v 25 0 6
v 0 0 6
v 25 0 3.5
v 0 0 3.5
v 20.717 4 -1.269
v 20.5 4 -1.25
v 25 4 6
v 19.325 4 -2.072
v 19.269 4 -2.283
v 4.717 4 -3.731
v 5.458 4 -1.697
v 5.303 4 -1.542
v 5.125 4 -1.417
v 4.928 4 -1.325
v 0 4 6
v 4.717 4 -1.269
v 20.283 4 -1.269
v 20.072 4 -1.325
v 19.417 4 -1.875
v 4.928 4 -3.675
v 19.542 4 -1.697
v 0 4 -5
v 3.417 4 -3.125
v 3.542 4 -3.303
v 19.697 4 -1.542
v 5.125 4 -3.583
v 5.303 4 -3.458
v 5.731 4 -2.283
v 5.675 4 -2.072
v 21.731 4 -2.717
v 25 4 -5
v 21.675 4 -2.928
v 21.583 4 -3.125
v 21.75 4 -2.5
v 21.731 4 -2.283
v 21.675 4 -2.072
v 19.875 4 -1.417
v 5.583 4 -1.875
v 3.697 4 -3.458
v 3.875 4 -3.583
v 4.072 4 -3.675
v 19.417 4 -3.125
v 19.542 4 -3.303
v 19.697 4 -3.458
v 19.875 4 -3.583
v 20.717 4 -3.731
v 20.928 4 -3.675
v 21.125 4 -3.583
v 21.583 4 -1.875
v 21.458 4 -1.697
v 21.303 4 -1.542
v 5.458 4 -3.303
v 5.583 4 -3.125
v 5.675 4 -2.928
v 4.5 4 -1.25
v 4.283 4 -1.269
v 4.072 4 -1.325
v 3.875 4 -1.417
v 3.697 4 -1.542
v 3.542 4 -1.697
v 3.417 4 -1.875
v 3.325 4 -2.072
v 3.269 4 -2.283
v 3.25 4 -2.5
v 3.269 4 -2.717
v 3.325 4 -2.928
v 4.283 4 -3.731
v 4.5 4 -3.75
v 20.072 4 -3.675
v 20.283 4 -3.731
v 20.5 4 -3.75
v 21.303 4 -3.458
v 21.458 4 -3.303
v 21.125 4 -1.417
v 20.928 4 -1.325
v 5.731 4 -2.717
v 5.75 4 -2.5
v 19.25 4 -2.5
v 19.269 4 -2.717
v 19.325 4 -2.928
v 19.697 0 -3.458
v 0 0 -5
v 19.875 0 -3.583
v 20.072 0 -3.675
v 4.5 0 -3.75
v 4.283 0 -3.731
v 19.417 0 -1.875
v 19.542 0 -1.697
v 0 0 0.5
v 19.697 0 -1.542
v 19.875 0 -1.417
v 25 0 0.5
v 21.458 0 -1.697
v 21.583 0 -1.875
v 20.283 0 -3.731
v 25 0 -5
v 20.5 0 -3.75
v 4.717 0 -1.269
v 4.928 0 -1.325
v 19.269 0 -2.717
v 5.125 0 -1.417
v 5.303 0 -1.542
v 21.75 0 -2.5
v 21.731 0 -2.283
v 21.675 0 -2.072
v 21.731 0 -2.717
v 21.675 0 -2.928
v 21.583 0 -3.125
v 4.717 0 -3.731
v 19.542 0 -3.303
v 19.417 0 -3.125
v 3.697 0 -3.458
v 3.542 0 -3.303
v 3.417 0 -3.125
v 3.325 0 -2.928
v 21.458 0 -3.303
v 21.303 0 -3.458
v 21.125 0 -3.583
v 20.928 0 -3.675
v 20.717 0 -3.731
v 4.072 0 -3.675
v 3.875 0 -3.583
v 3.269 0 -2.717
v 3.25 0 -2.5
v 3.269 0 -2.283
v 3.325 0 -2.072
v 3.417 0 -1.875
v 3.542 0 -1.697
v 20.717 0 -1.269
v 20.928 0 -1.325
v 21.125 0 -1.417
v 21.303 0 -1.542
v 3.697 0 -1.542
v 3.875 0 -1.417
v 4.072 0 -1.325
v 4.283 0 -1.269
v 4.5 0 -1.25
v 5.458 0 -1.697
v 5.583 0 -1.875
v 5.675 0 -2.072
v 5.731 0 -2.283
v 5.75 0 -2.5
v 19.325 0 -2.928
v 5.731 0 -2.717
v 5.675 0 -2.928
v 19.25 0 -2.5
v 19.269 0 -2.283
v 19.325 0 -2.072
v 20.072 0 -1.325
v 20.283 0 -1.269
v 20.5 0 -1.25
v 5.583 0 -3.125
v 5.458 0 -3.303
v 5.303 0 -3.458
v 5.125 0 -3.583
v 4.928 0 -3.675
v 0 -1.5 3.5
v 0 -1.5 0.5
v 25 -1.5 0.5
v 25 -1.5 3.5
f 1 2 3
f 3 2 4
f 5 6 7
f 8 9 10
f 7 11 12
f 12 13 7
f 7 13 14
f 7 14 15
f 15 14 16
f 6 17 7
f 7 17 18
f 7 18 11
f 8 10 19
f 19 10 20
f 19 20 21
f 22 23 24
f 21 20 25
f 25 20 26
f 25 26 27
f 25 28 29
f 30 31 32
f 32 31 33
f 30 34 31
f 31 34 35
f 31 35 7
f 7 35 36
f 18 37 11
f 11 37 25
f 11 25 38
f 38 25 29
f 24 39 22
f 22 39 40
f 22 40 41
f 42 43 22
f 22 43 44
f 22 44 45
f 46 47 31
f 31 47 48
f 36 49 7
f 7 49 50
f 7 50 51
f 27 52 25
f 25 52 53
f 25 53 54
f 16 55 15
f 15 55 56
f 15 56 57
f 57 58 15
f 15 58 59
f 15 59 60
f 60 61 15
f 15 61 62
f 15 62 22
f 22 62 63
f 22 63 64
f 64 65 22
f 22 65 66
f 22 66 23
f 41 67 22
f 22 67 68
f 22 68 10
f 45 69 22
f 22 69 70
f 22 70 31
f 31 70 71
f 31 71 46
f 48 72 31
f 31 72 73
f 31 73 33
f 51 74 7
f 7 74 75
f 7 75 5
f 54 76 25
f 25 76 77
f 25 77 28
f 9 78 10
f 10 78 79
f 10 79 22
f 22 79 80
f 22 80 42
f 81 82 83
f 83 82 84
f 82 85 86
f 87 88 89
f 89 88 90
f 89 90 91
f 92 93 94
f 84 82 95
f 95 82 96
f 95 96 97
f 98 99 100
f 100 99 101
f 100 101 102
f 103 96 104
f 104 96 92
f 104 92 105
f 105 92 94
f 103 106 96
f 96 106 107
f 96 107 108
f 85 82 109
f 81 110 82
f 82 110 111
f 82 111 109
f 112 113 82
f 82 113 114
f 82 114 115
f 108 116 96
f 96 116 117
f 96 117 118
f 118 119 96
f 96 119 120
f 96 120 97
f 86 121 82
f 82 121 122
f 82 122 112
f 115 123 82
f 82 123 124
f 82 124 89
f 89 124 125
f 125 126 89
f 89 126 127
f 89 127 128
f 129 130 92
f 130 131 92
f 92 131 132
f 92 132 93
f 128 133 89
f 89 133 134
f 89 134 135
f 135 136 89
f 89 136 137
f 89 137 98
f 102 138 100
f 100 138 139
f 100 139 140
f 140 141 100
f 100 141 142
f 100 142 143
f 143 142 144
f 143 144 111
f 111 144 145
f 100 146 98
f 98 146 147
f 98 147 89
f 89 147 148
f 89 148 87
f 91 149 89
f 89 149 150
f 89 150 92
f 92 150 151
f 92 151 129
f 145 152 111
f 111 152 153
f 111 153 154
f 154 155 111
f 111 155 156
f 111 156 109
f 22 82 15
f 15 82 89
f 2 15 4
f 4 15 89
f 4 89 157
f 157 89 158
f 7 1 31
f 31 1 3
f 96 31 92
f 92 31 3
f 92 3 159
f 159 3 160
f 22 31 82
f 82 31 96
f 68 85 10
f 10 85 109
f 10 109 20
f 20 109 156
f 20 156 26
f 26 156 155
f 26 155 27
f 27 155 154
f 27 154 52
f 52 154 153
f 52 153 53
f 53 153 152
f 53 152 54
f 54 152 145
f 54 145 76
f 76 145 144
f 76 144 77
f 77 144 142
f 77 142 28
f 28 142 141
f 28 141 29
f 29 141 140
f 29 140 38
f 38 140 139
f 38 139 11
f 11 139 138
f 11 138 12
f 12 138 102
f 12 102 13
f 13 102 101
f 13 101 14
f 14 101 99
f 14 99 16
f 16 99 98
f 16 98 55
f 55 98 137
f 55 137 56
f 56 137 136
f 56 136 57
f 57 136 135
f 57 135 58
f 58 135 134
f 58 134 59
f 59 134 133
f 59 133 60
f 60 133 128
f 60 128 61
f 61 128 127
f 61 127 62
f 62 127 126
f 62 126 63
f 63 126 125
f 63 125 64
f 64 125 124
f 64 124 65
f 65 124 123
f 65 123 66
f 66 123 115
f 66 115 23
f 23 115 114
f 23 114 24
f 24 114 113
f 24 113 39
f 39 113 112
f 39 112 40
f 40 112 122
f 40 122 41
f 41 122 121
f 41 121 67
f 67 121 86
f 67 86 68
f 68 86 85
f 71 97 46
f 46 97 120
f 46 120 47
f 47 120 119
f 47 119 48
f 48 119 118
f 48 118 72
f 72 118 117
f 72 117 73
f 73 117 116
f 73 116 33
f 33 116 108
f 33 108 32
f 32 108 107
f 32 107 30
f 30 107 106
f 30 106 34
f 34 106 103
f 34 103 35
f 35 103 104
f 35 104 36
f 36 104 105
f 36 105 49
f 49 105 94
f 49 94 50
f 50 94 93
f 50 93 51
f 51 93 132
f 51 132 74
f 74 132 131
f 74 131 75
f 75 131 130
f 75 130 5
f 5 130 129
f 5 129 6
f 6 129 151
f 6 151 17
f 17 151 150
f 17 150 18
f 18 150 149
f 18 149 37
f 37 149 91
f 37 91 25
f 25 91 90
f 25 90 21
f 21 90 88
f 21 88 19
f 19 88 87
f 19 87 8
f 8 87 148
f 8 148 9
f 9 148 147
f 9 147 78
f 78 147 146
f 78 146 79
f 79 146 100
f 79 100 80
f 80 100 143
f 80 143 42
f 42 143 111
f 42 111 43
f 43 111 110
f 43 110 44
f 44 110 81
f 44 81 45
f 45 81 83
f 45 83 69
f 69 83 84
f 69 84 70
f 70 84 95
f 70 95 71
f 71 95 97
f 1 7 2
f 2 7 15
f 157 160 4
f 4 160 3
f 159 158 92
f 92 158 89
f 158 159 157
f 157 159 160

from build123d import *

# Parameters (mm, degrees)
SKETCH1_W           = 25
SKETCH1_H           = 5
SKETCH1_R           = 1.25
BOSS_EXTRUDE1_DEPTH = 4
SKETCH2_W           = 25
SKETCH2_H           = 4
BOSS_EXTRUDE2_DEPTH = 6
SKETCH3_W           = 25
SKETCH3_H           = 3
BOSS_EXTRUDE3_DEPTH = 1.5


with BuildPart() as part:
    # Sketch1 → Boss-Extrude1 (new body)
    with BuildSketch(Plane(origin=(0, 0, 0), x_dir=(1, 0, 0), z_dir=(0, 1, 0))):
        with Locations((12.5, 2.5)):
            Rectangle(SKETCH1_W, SKETCH1_H)
        with Locations(Location((4.5, 2.5, 0), (0, 0, 270))):
            Circle(SKETCH1_R, mode=Mode.SUBTRACT)
        with Locations(Location((20.5, 2.5, 0), (0, 0, 270))):
            Circle(SKETCH1_R, mode=Mode.SUBTRACT)
    extrude(amount=BOSS_EXTRUDE1_DEPTH)

    # Sketch2 → Boss-Extrude2 (add)
    with BuildSketch(Plane.XY):
        with Locations((12.5, 2)):
            Rectangle(SKETCH2_W, SKETCH2_H)
    extrude(amount=BOSS_EXTRUDE2_DEPTH)

    # Sketch3 → Boss-Extrude3 (add)
    with BuildSketch(Plane.XZ):
        with Locations((12.5, 2)):
            Rectangle(SKETCH3_W, SKETCH3_H)
    extrude(amount=BOSS_EXTRUDE3_DEPTH)


solid = part.part
